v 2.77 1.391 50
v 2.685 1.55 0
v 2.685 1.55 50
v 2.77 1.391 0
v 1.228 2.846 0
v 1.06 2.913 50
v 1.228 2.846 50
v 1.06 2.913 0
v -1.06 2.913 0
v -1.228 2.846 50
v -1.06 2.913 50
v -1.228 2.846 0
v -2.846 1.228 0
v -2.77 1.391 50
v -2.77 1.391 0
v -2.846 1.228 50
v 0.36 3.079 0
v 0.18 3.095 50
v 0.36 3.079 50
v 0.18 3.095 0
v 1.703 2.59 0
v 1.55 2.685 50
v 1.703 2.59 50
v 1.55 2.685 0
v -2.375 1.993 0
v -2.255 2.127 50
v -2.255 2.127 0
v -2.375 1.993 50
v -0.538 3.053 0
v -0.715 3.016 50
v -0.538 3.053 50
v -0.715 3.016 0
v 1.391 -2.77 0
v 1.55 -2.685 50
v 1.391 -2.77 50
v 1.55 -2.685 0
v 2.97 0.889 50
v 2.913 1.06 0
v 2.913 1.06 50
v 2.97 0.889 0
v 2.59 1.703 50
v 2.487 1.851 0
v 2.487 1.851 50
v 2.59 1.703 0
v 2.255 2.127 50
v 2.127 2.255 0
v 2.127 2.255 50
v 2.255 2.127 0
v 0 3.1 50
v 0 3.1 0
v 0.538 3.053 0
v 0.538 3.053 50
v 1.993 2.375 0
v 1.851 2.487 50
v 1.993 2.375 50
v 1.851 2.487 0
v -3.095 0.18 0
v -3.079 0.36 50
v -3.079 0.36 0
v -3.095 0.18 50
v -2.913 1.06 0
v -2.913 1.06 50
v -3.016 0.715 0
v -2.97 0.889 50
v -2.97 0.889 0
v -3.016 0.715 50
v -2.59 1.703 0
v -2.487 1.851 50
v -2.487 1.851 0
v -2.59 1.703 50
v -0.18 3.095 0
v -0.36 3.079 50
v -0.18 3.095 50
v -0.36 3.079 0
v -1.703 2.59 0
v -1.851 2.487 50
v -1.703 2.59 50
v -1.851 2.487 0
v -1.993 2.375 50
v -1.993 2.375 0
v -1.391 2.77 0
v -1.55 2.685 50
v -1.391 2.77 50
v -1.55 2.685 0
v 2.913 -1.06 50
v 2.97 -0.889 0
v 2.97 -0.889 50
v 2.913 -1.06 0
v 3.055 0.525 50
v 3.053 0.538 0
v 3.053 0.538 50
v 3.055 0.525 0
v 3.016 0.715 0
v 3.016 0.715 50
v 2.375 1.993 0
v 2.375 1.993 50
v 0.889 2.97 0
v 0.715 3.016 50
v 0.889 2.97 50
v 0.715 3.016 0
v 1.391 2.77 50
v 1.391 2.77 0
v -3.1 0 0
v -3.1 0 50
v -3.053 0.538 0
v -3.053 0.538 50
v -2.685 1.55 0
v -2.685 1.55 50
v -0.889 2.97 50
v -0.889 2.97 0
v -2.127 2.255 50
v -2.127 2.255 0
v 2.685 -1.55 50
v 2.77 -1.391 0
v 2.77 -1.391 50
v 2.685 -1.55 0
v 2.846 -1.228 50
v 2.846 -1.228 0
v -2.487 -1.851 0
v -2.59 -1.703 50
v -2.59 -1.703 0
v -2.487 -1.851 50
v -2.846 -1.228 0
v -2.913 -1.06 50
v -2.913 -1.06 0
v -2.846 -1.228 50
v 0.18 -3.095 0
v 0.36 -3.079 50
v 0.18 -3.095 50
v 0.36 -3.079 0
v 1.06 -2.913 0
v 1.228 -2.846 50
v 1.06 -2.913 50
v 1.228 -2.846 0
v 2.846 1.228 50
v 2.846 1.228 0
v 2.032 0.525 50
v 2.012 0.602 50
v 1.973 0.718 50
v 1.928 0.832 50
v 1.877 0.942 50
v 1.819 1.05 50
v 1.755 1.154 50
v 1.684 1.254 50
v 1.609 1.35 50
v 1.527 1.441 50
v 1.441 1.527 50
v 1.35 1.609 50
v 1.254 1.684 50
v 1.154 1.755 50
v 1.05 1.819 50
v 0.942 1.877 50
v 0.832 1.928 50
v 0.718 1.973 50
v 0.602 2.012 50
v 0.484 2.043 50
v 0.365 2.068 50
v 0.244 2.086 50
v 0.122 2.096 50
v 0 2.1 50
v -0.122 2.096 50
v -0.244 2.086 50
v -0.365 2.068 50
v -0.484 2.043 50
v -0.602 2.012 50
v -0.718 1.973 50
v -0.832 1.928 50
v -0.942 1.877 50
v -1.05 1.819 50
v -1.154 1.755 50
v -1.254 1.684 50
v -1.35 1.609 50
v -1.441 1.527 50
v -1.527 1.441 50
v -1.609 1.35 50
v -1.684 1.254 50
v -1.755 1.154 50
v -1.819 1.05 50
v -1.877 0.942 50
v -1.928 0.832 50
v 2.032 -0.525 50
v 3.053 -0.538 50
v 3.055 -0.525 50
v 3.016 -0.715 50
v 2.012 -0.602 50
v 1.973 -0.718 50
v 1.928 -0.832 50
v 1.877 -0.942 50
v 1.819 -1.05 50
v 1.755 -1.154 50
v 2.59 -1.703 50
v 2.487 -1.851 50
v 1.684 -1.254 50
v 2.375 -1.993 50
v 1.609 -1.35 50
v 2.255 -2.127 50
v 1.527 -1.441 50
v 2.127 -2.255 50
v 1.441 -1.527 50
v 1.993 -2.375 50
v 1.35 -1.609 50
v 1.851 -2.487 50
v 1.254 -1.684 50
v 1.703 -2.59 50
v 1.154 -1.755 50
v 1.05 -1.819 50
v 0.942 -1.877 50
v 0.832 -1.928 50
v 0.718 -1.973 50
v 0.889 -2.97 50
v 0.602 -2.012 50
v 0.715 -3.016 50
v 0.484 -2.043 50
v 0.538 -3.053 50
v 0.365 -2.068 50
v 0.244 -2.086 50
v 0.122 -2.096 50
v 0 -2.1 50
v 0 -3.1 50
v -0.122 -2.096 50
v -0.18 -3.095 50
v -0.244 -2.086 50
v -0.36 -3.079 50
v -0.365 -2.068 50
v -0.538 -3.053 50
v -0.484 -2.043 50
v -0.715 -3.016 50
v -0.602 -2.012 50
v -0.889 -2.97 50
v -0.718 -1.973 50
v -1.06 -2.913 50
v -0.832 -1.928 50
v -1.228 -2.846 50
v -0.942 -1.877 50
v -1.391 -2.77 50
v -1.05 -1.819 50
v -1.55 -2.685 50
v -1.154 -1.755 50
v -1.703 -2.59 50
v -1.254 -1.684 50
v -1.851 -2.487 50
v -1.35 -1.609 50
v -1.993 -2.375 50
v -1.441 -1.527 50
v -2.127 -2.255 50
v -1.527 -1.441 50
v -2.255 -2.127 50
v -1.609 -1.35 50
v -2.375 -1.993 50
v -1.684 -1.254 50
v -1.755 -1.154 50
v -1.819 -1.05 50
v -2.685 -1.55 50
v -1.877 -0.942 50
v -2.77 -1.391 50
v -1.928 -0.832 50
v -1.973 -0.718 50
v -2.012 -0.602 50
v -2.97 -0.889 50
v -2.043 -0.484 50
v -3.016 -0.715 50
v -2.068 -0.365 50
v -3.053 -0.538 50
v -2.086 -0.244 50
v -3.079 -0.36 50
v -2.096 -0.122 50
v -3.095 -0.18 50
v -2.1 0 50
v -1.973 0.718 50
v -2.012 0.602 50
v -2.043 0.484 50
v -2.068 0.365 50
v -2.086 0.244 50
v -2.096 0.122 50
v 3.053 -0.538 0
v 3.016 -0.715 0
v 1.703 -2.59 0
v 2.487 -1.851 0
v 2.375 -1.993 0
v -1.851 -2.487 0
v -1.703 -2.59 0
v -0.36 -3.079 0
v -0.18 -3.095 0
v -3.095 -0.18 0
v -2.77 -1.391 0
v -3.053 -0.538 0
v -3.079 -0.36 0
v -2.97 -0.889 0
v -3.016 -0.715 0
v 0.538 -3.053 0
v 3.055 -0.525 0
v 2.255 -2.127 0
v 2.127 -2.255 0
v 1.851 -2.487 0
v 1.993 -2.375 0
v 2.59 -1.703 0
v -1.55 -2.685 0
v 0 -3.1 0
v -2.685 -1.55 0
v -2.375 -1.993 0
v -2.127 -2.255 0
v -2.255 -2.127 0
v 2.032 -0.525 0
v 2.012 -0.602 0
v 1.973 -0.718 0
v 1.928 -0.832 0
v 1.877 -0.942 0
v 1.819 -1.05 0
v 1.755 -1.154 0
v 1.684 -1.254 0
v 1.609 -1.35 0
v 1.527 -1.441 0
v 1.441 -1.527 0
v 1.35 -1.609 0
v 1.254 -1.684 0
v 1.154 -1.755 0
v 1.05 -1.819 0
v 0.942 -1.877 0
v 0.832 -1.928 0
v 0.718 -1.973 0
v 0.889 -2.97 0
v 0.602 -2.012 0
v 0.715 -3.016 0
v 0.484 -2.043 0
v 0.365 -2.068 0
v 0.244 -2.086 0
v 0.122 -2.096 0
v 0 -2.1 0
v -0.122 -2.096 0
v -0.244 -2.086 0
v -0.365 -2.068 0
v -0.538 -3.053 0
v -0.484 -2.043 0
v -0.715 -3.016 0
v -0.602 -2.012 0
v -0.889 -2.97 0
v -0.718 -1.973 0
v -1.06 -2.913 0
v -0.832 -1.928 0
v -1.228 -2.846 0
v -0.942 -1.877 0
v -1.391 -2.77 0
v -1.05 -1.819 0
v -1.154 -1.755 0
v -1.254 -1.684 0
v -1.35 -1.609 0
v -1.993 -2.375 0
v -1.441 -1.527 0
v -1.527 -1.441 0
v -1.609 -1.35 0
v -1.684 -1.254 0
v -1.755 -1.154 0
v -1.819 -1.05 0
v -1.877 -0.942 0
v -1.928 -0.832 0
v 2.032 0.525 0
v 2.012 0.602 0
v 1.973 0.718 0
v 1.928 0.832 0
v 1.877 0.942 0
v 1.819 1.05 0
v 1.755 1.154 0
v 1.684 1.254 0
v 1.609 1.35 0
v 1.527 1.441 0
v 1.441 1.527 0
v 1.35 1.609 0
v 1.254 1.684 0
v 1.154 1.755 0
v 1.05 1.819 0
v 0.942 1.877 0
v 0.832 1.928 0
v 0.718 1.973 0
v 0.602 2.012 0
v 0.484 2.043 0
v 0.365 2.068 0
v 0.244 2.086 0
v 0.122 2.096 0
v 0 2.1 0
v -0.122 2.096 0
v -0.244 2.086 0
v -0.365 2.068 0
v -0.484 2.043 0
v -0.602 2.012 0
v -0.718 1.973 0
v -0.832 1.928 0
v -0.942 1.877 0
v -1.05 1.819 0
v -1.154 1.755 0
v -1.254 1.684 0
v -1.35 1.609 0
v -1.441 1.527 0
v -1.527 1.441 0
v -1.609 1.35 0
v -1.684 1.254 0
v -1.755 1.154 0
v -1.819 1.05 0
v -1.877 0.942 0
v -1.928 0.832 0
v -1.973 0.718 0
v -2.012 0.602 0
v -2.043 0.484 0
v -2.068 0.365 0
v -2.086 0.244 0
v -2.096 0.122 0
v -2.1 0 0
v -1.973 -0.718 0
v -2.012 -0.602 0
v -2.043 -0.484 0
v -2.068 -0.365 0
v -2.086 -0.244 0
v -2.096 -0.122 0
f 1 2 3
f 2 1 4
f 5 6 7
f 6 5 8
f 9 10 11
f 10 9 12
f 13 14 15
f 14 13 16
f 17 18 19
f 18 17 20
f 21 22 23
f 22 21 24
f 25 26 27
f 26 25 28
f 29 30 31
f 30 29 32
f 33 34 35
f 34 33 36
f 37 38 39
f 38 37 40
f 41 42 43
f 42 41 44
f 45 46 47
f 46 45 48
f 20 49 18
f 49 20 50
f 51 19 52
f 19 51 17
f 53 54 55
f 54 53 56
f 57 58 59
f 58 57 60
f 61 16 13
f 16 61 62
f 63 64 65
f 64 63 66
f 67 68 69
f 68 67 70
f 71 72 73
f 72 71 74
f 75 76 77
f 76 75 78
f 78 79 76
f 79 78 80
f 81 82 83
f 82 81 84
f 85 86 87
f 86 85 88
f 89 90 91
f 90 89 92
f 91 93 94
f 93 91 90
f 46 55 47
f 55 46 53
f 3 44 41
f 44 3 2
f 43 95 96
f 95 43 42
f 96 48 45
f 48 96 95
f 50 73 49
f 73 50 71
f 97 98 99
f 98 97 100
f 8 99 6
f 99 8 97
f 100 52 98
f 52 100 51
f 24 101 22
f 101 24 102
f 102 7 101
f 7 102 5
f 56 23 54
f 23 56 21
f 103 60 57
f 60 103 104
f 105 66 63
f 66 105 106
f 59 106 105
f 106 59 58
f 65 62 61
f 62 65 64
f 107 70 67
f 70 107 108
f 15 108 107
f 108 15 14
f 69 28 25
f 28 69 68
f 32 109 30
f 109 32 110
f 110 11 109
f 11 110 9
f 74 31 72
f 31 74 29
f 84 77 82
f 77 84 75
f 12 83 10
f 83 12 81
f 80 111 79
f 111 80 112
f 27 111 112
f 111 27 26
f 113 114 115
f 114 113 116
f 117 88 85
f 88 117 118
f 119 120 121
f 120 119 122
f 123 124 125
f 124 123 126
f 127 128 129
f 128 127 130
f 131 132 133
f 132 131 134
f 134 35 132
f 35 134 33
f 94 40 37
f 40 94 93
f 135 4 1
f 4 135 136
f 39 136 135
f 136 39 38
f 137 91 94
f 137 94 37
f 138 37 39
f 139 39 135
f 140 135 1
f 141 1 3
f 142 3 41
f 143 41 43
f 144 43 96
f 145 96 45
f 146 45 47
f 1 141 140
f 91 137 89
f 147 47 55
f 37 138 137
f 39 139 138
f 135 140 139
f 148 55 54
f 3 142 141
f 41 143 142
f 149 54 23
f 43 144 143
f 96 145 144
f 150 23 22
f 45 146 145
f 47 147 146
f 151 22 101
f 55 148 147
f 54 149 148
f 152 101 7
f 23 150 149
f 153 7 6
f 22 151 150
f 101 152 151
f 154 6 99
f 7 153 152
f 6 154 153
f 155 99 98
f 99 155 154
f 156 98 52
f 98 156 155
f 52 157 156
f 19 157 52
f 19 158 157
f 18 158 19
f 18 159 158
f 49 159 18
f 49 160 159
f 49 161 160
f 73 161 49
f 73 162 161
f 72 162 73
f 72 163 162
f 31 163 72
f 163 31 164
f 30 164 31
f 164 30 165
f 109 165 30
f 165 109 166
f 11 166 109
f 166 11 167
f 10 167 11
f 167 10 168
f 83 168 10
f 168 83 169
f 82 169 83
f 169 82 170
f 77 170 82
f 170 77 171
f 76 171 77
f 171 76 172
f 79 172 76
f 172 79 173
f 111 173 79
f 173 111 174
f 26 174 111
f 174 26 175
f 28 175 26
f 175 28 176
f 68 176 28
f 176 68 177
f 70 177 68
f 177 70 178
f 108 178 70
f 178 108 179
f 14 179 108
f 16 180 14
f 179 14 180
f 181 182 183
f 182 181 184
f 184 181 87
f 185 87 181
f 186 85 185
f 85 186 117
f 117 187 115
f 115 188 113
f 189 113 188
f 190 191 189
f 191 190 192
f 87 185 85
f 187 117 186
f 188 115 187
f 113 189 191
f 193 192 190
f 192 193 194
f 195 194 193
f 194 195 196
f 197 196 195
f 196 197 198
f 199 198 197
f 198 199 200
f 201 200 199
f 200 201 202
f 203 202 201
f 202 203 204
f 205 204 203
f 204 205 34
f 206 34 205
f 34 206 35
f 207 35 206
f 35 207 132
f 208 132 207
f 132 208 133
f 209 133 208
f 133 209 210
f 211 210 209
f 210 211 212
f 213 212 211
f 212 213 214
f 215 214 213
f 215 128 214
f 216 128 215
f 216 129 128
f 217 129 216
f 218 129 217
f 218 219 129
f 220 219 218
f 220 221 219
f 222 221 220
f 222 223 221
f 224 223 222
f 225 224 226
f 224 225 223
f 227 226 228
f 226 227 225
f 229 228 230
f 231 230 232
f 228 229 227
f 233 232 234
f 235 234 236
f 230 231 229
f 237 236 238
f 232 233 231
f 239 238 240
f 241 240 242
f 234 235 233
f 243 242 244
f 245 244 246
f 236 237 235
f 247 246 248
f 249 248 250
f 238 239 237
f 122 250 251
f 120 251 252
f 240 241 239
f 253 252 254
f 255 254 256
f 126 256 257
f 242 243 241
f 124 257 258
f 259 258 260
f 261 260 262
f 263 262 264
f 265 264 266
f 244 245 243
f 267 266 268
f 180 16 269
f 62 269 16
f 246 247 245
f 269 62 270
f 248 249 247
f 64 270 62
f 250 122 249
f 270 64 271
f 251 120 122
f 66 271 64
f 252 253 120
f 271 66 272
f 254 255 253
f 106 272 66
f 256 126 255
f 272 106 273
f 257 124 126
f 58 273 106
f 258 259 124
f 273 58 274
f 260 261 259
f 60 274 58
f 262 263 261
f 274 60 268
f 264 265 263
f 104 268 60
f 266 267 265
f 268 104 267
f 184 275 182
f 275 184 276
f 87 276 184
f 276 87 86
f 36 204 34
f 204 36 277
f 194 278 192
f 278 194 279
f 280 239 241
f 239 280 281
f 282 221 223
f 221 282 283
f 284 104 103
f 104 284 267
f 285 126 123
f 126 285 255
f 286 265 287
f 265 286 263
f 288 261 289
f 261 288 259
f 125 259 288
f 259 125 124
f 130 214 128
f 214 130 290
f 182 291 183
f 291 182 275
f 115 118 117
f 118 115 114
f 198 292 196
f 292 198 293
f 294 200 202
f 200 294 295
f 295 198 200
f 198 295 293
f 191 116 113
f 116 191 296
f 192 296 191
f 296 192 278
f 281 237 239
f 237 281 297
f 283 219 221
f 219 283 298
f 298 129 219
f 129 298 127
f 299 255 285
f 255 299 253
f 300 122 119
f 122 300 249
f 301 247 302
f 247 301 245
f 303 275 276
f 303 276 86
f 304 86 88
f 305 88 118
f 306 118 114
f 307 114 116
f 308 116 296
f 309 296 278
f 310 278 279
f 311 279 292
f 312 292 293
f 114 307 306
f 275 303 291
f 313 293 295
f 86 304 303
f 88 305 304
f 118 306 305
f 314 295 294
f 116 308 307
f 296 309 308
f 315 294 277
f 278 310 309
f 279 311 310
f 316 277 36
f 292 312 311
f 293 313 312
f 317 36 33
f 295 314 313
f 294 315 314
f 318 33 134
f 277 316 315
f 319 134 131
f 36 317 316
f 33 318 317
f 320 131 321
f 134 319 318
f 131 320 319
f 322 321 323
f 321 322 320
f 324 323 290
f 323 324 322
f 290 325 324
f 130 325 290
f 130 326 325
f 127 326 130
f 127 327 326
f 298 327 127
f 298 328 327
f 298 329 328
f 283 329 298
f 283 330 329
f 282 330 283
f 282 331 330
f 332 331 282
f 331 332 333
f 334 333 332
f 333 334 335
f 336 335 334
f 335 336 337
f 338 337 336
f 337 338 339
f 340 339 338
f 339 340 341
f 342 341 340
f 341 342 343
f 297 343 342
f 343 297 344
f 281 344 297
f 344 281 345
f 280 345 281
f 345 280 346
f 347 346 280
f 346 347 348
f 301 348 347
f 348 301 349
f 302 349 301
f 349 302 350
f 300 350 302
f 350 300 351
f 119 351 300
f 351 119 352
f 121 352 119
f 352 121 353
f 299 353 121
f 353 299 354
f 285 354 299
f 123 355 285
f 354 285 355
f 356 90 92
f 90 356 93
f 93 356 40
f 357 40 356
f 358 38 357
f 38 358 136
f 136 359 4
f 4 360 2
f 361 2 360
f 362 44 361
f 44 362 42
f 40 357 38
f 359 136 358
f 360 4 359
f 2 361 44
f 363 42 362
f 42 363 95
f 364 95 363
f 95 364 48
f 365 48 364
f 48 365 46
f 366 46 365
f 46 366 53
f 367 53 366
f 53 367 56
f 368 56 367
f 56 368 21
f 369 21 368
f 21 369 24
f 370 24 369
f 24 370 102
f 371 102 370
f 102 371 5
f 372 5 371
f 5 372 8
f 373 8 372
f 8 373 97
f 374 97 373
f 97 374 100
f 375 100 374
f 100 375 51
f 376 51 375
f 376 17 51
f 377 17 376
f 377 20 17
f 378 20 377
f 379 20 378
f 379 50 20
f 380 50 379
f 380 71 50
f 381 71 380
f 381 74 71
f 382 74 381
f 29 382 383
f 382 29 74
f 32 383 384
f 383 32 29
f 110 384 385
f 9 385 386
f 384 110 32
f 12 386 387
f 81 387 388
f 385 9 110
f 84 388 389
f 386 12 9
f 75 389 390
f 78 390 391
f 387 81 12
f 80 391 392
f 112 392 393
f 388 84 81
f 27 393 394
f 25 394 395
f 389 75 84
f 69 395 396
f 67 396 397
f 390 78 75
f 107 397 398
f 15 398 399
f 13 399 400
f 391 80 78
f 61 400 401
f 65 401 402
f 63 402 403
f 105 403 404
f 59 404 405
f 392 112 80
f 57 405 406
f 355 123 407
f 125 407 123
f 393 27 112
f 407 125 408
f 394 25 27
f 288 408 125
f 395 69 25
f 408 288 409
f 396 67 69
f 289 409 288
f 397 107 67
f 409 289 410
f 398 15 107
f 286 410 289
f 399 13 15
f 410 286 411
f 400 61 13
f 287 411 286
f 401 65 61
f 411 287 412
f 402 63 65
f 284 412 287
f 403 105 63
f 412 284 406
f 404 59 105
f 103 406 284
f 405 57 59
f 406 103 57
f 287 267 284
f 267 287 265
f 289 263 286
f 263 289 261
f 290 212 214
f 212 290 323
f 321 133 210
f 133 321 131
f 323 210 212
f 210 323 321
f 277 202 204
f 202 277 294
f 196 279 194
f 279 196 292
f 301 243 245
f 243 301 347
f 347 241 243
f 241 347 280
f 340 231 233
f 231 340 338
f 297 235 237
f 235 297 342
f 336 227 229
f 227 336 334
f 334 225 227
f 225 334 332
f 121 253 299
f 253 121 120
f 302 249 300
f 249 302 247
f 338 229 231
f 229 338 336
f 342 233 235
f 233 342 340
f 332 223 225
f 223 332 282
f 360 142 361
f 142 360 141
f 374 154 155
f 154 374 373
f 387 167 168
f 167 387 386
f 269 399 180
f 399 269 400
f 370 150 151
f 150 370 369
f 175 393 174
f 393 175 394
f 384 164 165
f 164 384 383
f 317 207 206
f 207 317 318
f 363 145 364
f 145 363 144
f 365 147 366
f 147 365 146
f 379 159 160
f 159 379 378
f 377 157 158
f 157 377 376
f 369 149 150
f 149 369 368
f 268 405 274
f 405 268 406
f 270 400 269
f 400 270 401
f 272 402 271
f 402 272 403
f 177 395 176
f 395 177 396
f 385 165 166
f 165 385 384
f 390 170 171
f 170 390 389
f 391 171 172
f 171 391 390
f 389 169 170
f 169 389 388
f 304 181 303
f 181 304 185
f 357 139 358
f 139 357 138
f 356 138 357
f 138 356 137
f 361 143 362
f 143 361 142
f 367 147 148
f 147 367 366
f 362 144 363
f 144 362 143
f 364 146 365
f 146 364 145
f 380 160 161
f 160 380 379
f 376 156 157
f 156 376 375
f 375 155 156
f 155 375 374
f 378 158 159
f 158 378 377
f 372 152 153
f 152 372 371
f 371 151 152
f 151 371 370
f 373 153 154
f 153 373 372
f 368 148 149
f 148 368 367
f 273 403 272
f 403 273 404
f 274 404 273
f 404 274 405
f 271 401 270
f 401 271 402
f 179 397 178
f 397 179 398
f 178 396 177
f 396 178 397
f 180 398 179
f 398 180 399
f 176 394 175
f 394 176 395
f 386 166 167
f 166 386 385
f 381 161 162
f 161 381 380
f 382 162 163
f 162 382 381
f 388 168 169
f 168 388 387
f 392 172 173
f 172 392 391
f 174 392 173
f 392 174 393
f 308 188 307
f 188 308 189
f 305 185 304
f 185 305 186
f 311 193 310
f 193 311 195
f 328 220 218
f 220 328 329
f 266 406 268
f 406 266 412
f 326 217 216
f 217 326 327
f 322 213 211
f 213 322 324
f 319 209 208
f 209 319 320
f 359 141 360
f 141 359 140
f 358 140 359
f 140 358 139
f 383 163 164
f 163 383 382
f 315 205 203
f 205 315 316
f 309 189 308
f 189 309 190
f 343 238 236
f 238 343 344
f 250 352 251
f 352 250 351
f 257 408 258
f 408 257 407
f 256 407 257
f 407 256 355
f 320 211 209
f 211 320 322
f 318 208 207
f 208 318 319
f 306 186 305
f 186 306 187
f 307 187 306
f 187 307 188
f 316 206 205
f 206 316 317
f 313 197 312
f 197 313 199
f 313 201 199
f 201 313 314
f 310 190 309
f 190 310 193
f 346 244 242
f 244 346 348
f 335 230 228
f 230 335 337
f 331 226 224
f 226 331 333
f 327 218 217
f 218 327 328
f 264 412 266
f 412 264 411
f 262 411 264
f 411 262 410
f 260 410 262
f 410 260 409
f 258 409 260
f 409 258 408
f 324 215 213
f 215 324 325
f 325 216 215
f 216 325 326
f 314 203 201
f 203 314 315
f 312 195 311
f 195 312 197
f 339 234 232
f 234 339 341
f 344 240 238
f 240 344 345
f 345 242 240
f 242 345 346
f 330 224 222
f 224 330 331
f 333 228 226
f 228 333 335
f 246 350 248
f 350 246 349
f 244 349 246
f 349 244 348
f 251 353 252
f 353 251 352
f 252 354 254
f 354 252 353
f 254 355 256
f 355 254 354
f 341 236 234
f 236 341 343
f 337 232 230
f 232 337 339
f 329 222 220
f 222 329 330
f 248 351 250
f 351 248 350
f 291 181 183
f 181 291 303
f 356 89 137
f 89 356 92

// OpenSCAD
//General
$fn=108;
tolerance = 0.4;

r_bar = (3.8+tolerance)/2; // Actual bar diameter is 3.7-3.8mm
h_bar = 50;

wall = 1;

r_sleeve = r_bar + wall;
h_sleeve = h_bar;

// rotate([0,90,0])
difference(){
  cylinder(r=r_sleeve, h=h_sleeve);
  cylinder(r=r_bar, h=h_bar);
  translate([0,-r_bar/4,0])
  cube([r_bar*3, r_bar/2, h_bar]);
}
